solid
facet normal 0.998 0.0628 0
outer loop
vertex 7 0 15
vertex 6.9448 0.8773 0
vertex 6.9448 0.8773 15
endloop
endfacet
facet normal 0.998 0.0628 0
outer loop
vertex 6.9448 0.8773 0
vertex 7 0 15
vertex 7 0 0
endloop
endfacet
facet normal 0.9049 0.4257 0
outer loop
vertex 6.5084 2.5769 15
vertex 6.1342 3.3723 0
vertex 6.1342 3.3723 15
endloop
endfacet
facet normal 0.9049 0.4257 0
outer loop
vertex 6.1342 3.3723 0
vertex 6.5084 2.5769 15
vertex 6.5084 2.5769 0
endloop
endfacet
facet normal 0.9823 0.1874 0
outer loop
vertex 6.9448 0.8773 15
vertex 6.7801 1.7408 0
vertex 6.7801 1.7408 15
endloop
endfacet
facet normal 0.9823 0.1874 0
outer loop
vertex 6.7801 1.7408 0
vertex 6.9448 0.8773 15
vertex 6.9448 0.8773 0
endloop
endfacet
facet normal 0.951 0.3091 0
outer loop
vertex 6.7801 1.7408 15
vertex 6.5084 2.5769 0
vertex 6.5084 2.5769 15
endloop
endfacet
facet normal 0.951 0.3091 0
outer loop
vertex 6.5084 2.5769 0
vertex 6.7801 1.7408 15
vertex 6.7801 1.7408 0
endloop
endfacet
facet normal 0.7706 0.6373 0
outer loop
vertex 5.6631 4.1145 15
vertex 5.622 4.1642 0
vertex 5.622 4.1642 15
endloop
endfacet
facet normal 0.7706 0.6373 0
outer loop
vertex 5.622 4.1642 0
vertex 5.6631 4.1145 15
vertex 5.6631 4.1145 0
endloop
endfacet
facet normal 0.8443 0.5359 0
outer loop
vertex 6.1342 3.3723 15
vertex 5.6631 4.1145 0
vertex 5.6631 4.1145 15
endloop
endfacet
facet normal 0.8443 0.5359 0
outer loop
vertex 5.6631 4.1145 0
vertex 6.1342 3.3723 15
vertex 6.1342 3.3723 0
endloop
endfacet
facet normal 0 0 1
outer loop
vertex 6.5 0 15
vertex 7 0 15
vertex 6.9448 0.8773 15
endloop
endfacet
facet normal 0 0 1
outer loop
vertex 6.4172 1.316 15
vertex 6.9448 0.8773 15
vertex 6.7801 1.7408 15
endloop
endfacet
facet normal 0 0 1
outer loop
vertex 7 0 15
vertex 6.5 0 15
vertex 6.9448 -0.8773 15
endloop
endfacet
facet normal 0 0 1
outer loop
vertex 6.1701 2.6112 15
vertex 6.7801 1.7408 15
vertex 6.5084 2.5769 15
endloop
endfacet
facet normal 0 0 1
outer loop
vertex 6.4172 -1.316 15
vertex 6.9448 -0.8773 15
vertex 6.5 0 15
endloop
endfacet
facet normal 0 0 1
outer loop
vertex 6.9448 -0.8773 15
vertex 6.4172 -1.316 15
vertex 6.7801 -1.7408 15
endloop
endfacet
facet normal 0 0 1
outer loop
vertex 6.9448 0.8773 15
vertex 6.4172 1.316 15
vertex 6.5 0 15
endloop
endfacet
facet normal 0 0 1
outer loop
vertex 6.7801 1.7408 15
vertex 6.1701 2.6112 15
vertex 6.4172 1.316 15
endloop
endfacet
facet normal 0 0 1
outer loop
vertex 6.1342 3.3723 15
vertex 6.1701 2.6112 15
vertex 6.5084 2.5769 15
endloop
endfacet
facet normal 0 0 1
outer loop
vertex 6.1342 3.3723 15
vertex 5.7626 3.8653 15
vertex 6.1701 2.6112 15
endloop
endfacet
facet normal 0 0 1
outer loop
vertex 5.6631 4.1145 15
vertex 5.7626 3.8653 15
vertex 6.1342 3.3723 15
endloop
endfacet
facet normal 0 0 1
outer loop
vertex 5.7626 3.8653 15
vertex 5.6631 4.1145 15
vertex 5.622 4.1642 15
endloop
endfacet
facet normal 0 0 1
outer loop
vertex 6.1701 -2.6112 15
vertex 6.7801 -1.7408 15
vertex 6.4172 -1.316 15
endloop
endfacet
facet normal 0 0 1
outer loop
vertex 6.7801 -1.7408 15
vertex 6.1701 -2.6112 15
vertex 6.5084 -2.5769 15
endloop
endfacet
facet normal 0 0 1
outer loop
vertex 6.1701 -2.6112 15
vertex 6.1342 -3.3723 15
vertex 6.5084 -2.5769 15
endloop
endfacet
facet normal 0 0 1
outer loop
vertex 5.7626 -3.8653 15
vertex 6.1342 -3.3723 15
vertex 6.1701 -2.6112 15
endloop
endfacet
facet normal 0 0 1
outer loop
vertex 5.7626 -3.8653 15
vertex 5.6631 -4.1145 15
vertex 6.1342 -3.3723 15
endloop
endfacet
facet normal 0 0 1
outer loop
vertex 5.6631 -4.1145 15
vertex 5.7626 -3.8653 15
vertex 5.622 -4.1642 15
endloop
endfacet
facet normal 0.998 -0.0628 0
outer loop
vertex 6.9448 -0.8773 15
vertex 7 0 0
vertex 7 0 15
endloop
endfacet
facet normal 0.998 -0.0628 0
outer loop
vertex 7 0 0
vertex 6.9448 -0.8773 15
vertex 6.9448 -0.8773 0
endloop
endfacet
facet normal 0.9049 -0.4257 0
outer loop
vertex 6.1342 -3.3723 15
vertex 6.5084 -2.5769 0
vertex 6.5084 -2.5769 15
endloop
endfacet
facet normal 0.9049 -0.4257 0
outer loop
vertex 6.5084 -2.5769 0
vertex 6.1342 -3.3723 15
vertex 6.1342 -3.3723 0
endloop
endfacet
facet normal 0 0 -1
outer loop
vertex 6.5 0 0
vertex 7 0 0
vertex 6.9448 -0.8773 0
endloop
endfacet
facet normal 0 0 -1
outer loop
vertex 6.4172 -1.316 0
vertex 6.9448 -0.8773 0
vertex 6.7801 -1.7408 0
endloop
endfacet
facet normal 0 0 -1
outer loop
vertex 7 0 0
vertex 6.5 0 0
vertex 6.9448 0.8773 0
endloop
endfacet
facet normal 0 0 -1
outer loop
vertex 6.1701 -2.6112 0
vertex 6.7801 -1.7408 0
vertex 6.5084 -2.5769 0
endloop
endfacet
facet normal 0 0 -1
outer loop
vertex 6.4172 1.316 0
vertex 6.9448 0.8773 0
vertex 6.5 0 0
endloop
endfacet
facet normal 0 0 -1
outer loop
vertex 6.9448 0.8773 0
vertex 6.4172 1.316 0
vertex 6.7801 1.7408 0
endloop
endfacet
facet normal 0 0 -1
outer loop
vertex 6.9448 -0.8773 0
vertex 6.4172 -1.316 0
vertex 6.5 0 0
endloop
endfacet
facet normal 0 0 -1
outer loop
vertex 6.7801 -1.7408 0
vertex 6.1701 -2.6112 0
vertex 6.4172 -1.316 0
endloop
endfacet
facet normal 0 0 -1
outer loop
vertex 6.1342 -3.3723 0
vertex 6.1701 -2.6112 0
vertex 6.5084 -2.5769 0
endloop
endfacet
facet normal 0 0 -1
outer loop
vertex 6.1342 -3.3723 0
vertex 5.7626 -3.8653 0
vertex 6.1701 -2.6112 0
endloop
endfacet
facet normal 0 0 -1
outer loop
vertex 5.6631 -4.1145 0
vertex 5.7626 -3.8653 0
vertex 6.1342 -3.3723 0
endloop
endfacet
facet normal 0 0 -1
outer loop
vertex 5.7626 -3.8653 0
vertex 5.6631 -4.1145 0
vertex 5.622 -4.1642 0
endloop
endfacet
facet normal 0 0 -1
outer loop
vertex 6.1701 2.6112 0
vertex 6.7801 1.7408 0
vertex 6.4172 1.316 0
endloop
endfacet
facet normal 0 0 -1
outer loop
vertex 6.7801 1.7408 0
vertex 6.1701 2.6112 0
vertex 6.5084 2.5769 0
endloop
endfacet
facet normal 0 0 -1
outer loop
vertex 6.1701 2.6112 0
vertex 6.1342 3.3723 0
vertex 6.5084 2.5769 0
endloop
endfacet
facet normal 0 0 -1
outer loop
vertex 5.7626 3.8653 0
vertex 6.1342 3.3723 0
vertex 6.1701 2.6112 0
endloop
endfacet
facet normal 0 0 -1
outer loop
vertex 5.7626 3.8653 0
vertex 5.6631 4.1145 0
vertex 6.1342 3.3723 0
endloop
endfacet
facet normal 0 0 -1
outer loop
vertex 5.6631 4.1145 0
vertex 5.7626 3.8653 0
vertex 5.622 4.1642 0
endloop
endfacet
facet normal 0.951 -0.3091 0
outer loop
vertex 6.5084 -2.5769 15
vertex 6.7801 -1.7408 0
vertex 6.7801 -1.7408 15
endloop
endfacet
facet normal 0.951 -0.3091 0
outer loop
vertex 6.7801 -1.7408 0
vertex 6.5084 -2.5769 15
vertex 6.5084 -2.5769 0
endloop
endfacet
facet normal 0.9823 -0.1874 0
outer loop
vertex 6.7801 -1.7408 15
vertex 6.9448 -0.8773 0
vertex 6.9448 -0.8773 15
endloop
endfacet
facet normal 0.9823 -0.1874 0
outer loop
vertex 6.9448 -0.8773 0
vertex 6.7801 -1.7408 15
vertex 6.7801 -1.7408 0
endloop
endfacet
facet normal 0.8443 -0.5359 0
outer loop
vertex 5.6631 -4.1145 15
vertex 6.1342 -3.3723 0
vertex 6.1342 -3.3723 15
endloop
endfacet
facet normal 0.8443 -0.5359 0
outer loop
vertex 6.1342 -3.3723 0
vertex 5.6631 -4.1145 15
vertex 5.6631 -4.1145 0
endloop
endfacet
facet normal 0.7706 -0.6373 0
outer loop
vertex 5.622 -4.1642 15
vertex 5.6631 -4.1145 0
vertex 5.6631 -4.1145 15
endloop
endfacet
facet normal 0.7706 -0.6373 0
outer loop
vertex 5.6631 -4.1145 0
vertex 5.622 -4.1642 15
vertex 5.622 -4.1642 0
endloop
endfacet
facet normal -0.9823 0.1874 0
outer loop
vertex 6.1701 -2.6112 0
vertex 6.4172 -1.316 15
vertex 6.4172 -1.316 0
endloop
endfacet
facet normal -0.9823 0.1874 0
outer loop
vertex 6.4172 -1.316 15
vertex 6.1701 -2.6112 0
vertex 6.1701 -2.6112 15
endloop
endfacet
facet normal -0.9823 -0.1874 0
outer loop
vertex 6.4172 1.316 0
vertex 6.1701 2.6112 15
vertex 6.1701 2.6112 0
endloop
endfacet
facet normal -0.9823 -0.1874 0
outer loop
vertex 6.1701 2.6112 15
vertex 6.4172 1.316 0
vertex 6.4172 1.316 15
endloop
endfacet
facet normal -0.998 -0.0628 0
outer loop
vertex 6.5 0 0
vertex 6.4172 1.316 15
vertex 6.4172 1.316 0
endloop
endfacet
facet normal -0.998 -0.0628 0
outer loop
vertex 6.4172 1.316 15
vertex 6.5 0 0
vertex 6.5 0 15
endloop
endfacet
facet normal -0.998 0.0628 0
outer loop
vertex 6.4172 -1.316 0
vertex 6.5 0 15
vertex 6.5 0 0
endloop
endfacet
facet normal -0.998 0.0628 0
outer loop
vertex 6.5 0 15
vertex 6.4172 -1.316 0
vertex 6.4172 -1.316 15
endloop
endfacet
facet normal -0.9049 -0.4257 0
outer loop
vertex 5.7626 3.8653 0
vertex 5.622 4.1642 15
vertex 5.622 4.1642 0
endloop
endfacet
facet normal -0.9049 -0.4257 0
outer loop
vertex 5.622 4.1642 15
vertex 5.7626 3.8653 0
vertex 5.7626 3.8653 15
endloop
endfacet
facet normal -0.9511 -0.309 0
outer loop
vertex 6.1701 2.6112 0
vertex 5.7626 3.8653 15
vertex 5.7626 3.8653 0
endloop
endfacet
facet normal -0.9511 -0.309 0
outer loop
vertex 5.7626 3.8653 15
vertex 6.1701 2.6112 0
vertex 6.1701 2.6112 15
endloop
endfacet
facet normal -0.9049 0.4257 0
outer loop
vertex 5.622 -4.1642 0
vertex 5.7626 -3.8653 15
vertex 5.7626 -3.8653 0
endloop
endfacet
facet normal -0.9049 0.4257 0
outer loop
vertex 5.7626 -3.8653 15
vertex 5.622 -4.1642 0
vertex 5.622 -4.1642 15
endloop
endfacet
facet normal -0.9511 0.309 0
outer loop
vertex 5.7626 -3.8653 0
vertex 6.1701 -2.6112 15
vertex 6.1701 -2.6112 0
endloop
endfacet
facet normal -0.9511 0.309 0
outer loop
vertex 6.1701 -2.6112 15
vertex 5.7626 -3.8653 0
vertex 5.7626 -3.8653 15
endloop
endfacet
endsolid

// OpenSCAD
$fn = 50;


difference() {
	union() {
		cylinder(h = 15, r = 7.0000000000);
		translate(v = [-7.0000000000, 0, 0]) {
			cylinder(h = 15, r = 7.0000000000);
		}
	}
	union() {
		cylinder(h = 15, r = 3.2500000000);
		cylinder(h = 15, r = 1.8000000000);
		cylinder(h = 15, r = 1.8000000000);
		cylinder(h = 15, r = 1.8000000000);
		translate(v = [-11.5000000000, 0, 0]) {
			hull() {
				translate(v = [-3.7500000000, 0.0000000000, 0]) {
					cylinder(h = 15, r = 7.5000000000);
				}
				translate(v = [3.7500000000, 0.0000000000, 0]) {
					cylinder(h = 15, r = 7.5000000000);
				}
				translate(v = [-3.7500000000, -0.0000000000, 0]) {
					cylinder(h = 15, r = 7.5000000000);
				}
				translate(v = [3.7500000000, -0.0000000000, 0]) {
					cylinder(h = 15, r = 7.5000000000);
				}
			}
		}
		translate(v = [-4.0000000000, 0, 0.0000000000]) {
			cylinder(h = 15, r = 10.5000000000);
		}
	}
}
